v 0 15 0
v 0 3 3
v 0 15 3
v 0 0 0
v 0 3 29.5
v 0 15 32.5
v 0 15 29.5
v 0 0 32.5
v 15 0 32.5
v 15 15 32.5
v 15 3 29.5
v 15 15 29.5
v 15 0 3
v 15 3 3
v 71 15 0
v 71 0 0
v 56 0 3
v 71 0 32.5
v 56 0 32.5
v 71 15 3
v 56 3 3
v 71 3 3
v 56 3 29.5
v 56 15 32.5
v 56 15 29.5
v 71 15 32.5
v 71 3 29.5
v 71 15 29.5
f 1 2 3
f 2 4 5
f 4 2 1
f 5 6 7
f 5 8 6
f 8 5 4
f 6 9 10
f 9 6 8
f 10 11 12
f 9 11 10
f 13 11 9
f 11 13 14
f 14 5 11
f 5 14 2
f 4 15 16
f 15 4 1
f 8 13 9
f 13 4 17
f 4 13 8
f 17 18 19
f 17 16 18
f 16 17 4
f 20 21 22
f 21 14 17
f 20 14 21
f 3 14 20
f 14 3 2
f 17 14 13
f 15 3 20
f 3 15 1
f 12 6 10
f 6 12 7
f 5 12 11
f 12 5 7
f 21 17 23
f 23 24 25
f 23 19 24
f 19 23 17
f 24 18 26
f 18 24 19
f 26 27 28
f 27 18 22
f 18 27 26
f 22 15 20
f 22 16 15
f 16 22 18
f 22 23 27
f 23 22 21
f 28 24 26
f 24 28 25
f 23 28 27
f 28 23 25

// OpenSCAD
// file: universal_bracket.scad
module universal_bracket(
        servo_height,
        battery_height,
        thickness,
        bracket_width
    ) {
    base_height = servo_height + battery_height;
    cube([
        bracket_width, thickness, base_height + thickness
    ]);
    cube([bracket_width, bracket_width, thickness]);
    translate([0, 0, base_height]) {
        cube([bracket_width, bracket_width, thickness]);
    } 
}

servo_height = 20;
battery_height = 9.5;
thickness = 3;
bracket_width = 15;

universal_bracket(
    servo_height,
    battery_height,
    thickness,
    bracket_width
);
// main file
use <universal_bracket.scad>;

module servo_bracket(
    servo_height,
    servo_width,
    battery_height,
    thickness,
    bracket_width
) {
    universal_bracket(
        servo_height,
        battery_height,
        thickness,
        bracket_width
    );
    translate([bracket_width + servo_width, 0, 0]) {
        universal_bracket(
            servo_height,
            battery_height,
            thickness,
            bracket_width
        );
    }
    cube([
        bracket_width * 2 + servo_width, 
        bracket_width, thickness
    ]);
}

servo_height = 20;
servo_width = 41;
battery_height = 9.5;
thickness = 3;
bracket_width = 15;

servo_bracket(
    servo_height,
    servo_width,
    battery_height,
    thickness,
    bracket_width
);
